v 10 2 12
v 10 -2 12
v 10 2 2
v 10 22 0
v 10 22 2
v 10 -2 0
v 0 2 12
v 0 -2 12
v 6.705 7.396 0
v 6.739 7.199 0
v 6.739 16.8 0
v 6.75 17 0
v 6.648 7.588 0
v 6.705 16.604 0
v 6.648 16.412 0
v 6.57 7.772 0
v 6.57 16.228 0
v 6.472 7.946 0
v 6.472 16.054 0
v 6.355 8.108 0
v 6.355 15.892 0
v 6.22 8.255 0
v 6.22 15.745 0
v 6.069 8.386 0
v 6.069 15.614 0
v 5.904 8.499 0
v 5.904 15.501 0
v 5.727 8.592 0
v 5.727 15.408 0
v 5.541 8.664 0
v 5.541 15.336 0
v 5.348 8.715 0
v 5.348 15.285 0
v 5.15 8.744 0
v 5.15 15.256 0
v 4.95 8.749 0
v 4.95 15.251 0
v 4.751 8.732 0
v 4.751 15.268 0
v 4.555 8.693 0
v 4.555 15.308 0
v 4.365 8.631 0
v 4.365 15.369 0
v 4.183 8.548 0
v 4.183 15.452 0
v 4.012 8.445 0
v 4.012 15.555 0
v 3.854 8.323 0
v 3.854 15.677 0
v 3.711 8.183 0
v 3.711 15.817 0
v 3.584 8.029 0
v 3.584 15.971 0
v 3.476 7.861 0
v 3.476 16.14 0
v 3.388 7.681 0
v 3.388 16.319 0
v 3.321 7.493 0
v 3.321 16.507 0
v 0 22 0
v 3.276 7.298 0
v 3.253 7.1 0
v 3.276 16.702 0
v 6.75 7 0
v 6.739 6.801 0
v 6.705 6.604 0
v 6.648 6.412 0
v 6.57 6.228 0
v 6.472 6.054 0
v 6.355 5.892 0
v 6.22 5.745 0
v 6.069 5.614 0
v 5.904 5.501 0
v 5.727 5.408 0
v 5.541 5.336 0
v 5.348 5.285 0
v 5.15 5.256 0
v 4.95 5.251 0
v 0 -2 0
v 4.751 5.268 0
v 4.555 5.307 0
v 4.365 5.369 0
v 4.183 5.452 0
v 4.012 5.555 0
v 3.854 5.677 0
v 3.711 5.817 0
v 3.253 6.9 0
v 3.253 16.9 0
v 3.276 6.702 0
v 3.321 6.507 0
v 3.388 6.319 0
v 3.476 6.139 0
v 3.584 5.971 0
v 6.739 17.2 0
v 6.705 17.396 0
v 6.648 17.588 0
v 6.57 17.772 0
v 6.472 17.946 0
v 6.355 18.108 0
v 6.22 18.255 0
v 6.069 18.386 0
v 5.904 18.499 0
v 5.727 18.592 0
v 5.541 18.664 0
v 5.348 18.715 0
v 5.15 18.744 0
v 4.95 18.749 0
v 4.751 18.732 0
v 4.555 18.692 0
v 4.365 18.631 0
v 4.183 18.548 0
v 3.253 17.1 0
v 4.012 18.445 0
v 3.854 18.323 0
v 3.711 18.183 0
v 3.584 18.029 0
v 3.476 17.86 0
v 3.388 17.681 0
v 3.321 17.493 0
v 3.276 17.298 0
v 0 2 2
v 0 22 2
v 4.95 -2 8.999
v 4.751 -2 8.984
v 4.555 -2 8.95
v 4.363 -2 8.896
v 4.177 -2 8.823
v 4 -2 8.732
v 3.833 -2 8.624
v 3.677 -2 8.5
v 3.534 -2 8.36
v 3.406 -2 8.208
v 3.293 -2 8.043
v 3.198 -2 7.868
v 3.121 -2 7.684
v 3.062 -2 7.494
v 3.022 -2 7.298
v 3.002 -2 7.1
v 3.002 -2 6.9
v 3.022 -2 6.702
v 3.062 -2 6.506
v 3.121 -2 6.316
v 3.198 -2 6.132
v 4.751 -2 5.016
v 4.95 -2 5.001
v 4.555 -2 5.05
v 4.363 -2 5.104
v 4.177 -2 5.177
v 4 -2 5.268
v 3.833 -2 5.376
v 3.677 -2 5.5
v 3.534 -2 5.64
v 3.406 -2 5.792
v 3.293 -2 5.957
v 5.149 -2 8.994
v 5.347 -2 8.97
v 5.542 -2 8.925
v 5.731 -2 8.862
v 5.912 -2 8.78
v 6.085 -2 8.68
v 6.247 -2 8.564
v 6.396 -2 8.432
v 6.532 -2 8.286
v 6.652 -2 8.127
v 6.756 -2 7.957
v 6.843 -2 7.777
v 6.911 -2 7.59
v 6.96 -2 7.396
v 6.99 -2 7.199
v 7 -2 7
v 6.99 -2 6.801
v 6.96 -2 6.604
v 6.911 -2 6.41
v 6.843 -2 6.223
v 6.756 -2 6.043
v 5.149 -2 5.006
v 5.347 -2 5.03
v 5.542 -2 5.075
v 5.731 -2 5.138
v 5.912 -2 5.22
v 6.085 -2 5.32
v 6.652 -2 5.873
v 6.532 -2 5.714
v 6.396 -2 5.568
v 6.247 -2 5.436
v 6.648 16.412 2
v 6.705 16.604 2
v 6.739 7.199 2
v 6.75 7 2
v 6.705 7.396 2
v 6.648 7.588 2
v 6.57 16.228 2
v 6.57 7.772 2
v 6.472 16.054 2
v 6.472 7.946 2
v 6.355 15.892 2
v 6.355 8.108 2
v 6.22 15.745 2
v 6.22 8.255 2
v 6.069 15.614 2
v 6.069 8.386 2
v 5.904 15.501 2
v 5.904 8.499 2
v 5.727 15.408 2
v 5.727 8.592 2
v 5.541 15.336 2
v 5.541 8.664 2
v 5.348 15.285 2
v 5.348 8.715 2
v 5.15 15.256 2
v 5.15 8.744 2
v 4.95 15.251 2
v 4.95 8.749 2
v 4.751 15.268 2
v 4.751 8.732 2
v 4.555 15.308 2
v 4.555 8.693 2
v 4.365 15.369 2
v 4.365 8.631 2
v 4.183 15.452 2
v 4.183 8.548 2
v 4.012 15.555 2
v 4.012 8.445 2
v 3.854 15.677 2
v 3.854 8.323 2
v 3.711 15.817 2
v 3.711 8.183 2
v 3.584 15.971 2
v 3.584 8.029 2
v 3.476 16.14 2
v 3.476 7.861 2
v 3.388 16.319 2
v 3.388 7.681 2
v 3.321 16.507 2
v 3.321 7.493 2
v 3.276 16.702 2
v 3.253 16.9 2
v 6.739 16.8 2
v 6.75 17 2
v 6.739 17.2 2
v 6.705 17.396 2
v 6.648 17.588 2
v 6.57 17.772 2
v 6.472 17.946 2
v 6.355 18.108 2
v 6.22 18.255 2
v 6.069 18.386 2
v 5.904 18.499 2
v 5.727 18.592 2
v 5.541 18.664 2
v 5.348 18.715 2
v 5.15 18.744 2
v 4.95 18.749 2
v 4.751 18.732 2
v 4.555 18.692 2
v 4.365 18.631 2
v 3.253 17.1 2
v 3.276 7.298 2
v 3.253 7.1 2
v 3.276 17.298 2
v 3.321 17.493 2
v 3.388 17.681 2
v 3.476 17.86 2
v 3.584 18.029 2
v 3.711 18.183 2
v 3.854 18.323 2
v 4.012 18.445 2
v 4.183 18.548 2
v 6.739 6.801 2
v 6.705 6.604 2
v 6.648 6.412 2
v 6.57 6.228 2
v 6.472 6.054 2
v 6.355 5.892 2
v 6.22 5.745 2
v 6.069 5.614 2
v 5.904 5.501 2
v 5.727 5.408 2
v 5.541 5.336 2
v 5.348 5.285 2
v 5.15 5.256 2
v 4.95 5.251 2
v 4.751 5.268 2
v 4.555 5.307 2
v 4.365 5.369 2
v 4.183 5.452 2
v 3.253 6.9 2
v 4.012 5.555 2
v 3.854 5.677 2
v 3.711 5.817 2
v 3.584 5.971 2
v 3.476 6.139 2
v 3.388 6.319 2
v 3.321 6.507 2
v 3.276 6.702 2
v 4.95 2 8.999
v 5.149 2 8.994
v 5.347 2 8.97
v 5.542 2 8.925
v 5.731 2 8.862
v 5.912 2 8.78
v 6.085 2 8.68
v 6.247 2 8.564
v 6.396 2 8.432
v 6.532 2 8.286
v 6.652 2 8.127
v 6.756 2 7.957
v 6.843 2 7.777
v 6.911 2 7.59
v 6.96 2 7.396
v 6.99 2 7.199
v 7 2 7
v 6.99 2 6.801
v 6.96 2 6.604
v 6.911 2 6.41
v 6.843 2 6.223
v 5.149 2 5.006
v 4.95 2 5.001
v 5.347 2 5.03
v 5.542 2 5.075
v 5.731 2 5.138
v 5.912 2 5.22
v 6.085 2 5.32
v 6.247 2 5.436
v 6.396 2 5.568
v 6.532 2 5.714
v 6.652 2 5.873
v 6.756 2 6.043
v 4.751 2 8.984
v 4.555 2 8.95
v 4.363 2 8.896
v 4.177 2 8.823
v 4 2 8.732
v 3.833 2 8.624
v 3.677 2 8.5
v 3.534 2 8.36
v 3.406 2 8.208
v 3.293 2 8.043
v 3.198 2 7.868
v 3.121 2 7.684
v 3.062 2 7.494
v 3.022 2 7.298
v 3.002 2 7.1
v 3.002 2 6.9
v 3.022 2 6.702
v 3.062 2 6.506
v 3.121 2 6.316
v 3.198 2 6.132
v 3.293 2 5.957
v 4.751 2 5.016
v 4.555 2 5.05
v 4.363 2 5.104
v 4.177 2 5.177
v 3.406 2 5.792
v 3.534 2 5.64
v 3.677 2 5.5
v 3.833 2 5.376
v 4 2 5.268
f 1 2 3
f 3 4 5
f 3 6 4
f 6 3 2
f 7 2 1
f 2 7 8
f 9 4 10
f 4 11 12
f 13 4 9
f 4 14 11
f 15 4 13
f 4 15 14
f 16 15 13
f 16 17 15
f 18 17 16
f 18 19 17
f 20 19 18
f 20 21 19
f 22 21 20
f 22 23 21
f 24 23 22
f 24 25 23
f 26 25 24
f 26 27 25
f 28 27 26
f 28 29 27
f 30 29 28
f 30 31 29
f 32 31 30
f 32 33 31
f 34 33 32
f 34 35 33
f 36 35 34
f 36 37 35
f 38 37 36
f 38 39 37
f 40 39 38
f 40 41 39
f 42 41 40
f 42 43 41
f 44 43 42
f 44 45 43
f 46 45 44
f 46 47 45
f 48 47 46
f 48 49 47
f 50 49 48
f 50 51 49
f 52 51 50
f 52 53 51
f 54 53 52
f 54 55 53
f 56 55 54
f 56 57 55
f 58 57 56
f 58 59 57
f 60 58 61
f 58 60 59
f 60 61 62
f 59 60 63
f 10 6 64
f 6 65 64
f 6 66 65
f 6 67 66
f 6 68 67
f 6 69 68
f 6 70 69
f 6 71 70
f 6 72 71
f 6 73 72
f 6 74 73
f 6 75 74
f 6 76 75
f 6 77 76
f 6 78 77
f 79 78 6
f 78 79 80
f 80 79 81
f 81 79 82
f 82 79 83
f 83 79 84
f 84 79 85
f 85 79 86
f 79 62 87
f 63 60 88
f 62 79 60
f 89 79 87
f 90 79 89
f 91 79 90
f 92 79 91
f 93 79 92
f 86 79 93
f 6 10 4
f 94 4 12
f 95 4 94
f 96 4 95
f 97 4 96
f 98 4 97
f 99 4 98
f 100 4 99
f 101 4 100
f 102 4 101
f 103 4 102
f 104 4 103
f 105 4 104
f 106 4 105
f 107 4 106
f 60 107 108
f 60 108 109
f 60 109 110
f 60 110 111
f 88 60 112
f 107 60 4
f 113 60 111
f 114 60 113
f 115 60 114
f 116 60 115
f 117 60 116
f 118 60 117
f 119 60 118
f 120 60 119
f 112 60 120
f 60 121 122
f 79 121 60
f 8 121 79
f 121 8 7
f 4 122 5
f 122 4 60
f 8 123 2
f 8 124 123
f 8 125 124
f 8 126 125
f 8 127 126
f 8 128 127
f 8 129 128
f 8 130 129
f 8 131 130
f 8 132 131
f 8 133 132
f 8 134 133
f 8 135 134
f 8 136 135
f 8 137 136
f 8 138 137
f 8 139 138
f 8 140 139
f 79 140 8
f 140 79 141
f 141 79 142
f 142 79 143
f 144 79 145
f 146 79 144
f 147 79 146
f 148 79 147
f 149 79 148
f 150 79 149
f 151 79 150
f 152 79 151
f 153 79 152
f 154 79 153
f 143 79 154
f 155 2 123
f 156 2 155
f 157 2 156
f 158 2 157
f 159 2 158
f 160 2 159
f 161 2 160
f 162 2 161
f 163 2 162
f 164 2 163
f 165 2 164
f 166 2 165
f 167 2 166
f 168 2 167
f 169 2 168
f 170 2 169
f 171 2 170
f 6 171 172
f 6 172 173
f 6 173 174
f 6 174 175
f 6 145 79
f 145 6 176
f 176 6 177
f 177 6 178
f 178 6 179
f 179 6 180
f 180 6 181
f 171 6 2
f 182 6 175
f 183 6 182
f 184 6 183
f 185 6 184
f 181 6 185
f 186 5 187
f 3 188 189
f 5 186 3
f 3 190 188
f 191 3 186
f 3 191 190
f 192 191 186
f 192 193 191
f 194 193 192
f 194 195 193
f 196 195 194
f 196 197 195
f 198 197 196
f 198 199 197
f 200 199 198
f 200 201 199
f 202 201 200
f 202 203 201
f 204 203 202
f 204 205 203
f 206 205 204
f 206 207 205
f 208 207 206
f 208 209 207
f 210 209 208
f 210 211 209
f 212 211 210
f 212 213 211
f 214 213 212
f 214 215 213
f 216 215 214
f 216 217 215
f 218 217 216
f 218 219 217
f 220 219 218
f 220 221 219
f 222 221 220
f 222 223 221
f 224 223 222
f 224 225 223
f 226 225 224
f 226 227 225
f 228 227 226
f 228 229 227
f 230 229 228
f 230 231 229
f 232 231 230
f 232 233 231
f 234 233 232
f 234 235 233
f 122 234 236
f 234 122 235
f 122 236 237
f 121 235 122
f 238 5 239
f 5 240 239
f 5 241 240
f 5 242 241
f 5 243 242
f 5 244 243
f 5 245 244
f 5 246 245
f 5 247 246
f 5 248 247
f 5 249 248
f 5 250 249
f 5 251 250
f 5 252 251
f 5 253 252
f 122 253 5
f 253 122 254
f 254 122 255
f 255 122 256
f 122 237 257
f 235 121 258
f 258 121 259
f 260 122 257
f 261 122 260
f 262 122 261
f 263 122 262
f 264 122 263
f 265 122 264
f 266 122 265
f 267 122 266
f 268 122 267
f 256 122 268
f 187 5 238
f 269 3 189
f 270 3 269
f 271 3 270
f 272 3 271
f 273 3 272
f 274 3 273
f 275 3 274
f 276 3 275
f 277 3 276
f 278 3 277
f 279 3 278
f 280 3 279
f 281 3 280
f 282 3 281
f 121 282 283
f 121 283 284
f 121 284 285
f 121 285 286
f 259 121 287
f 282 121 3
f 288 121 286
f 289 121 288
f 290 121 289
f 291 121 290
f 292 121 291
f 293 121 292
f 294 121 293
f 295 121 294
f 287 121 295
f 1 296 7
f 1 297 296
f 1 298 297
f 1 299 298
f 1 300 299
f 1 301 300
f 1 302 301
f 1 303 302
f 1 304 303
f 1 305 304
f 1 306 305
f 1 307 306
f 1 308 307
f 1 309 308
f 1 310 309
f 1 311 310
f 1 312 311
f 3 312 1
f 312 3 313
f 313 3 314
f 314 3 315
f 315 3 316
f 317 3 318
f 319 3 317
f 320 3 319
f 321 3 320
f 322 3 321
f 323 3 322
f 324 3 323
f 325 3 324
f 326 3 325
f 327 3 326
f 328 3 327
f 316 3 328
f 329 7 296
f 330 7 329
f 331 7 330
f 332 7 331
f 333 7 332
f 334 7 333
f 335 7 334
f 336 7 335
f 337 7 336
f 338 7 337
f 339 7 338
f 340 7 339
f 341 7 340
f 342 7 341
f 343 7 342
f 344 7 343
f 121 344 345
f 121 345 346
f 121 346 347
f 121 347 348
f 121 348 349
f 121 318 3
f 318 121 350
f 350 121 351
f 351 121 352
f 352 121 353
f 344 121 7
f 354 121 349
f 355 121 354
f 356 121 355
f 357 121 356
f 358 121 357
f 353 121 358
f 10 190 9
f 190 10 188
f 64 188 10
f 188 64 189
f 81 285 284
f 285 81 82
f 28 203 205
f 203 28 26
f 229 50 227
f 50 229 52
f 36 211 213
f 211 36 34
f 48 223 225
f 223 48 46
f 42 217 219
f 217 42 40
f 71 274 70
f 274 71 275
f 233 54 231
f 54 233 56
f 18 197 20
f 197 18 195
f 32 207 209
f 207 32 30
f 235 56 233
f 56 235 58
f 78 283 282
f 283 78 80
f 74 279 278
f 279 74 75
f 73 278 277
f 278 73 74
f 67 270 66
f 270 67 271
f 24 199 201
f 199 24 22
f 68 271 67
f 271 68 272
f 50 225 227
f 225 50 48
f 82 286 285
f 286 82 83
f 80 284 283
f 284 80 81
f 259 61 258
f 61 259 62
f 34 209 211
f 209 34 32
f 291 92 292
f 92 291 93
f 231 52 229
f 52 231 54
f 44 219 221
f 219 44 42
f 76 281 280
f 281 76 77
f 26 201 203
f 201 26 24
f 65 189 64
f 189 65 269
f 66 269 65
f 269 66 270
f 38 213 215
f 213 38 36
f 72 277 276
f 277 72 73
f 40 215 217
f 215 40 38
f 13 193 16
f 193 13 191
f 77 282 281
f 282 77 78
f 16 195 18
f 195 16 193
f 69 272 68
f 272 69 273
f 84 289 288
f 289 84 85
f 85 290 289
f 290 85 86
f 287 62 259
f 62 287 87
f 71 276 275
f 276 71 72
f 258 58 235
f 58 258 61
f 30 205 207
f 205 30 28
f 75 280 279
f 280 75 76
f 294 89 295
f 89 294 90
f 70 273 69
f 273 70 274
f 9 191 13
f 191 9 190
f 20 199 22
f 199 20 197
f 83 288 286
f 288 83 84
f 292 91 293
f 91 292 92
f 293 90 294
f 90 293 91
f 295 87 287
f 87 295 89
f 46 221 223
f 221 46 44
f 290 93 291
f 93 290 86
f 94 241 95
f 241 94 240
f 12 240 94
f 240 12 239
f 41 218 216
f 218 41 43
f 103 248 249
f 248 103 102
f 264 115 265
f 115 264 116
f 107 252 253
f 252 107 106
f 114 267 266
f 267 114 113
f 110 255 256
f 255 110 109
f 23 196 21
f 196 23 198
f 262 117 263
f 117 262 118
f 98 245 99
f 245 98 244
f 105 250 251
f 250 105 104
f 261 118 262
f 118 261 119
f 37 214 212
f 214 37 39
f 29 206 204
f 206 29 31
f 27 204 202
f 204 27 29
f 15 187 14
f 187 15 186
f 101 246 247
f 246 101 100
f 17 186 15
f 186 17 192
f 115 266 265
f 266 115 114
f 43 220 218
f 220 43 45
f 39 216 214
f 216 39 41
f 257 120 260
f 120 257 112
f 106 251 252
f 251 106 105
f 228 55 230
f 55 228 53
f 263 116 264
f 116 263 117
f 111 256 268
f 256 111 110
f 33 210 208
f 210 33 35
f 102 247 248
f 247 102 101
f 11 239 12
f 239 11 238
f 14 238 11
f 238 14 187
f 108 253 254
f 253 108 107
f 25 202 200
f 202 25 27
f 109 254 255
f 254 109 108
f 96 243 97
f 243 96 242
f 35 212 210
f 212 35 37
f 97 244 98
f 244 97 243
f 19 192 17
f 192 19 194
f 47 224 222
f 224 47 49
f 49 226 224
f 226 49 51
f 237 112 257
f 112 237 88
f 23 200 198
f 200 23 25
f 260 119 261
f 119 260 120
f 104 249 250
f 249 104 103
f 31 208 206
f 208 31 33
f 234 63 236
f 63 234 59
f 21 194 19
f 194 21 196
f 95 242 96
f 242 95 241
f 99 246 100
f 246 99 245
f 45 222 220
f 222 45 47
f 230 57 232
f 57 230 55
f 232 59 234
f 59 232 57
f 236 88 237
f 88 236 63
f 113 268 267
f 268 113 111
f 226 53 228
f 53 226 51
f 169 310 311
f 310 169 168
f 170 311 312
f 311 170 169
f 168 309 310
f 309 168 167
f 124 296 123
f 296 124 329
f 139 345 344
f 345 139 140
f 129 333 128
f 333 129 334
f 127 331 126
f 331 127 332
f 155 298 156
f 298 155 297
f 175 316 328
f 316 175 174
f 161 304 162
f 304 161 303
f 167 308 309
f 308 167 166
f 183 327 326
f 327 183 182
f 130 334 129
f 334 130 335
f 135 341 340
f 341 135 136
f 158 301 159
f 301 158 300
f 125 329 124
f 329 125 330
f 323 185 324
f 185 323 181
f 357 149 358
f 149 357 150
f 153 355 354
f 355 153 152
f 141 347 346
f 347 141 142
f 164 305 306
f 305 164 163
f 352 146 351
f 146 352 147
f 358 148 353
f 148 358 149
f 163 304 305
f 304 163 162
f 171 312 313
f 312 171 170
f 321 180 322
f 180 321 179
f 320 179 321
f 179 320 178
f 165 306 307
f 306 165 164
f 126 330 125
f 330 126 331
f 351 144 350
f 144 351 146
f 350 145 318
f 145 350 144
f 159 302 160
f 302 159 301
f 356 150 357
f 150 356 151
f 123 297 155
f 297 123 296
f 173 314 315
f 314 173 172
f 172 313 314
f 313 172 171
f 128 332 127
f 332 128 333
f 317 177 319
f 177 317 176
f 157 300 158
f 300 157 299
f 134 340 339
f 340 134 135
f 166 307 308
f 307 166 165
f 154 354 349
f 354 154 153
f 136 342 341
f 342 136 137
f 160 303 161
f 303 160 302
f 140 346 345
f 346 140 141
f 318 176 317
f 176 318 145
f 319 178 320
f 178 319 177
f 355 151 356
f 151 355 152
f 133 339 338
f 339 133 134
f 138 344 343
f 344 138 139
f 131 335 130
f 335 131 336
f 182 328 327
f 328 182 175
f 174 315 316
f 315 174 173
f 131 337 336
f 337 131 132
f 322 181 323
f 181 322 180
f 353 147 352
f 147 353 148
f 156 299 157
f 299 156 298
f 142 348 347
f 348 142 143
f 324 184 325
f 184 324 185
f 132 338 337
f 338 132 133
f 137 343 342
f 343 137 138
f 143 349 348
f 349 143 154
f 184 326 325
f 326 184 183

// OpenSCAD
$fs = .2;
$fa = 2;

plate_wid   = 10;
plate_dpth  = 20;
plate_hgt   = 12;
plate_thk   = 2;
shaft_rad   = 2;
servo_cc    = 42;
shaft_off   = 5;

module bracket() {
  difference() {
    union() {
      cube([plate_wid,   plate_dpth + plate_thk, plate_hgt]);
      translate([0, -plate_thk, 0])
        cube([plate_hgt - plate_thk, 2*plate_thk, plate_hgt]);
    }
    translate([-1,plate_thk, plate_thk])
      cube([plate_wid+2, plate_dpth + plate_thk, plate_hgt]);
    translate([shaft_off,  7, -.1]) cylinder(3,1.75,1.75);
    translate([shaft_off, 17, -.1]) cylinder(3,1.75,1.75);
    translate([shaft_off, plate_thk + 6, 1 + plate_hgt/2]) 
      rotate([90, 0, 0]) cylinder(plate_thk+10, shaft_rad, shaft_rad);
  }
}
 
bracket();
